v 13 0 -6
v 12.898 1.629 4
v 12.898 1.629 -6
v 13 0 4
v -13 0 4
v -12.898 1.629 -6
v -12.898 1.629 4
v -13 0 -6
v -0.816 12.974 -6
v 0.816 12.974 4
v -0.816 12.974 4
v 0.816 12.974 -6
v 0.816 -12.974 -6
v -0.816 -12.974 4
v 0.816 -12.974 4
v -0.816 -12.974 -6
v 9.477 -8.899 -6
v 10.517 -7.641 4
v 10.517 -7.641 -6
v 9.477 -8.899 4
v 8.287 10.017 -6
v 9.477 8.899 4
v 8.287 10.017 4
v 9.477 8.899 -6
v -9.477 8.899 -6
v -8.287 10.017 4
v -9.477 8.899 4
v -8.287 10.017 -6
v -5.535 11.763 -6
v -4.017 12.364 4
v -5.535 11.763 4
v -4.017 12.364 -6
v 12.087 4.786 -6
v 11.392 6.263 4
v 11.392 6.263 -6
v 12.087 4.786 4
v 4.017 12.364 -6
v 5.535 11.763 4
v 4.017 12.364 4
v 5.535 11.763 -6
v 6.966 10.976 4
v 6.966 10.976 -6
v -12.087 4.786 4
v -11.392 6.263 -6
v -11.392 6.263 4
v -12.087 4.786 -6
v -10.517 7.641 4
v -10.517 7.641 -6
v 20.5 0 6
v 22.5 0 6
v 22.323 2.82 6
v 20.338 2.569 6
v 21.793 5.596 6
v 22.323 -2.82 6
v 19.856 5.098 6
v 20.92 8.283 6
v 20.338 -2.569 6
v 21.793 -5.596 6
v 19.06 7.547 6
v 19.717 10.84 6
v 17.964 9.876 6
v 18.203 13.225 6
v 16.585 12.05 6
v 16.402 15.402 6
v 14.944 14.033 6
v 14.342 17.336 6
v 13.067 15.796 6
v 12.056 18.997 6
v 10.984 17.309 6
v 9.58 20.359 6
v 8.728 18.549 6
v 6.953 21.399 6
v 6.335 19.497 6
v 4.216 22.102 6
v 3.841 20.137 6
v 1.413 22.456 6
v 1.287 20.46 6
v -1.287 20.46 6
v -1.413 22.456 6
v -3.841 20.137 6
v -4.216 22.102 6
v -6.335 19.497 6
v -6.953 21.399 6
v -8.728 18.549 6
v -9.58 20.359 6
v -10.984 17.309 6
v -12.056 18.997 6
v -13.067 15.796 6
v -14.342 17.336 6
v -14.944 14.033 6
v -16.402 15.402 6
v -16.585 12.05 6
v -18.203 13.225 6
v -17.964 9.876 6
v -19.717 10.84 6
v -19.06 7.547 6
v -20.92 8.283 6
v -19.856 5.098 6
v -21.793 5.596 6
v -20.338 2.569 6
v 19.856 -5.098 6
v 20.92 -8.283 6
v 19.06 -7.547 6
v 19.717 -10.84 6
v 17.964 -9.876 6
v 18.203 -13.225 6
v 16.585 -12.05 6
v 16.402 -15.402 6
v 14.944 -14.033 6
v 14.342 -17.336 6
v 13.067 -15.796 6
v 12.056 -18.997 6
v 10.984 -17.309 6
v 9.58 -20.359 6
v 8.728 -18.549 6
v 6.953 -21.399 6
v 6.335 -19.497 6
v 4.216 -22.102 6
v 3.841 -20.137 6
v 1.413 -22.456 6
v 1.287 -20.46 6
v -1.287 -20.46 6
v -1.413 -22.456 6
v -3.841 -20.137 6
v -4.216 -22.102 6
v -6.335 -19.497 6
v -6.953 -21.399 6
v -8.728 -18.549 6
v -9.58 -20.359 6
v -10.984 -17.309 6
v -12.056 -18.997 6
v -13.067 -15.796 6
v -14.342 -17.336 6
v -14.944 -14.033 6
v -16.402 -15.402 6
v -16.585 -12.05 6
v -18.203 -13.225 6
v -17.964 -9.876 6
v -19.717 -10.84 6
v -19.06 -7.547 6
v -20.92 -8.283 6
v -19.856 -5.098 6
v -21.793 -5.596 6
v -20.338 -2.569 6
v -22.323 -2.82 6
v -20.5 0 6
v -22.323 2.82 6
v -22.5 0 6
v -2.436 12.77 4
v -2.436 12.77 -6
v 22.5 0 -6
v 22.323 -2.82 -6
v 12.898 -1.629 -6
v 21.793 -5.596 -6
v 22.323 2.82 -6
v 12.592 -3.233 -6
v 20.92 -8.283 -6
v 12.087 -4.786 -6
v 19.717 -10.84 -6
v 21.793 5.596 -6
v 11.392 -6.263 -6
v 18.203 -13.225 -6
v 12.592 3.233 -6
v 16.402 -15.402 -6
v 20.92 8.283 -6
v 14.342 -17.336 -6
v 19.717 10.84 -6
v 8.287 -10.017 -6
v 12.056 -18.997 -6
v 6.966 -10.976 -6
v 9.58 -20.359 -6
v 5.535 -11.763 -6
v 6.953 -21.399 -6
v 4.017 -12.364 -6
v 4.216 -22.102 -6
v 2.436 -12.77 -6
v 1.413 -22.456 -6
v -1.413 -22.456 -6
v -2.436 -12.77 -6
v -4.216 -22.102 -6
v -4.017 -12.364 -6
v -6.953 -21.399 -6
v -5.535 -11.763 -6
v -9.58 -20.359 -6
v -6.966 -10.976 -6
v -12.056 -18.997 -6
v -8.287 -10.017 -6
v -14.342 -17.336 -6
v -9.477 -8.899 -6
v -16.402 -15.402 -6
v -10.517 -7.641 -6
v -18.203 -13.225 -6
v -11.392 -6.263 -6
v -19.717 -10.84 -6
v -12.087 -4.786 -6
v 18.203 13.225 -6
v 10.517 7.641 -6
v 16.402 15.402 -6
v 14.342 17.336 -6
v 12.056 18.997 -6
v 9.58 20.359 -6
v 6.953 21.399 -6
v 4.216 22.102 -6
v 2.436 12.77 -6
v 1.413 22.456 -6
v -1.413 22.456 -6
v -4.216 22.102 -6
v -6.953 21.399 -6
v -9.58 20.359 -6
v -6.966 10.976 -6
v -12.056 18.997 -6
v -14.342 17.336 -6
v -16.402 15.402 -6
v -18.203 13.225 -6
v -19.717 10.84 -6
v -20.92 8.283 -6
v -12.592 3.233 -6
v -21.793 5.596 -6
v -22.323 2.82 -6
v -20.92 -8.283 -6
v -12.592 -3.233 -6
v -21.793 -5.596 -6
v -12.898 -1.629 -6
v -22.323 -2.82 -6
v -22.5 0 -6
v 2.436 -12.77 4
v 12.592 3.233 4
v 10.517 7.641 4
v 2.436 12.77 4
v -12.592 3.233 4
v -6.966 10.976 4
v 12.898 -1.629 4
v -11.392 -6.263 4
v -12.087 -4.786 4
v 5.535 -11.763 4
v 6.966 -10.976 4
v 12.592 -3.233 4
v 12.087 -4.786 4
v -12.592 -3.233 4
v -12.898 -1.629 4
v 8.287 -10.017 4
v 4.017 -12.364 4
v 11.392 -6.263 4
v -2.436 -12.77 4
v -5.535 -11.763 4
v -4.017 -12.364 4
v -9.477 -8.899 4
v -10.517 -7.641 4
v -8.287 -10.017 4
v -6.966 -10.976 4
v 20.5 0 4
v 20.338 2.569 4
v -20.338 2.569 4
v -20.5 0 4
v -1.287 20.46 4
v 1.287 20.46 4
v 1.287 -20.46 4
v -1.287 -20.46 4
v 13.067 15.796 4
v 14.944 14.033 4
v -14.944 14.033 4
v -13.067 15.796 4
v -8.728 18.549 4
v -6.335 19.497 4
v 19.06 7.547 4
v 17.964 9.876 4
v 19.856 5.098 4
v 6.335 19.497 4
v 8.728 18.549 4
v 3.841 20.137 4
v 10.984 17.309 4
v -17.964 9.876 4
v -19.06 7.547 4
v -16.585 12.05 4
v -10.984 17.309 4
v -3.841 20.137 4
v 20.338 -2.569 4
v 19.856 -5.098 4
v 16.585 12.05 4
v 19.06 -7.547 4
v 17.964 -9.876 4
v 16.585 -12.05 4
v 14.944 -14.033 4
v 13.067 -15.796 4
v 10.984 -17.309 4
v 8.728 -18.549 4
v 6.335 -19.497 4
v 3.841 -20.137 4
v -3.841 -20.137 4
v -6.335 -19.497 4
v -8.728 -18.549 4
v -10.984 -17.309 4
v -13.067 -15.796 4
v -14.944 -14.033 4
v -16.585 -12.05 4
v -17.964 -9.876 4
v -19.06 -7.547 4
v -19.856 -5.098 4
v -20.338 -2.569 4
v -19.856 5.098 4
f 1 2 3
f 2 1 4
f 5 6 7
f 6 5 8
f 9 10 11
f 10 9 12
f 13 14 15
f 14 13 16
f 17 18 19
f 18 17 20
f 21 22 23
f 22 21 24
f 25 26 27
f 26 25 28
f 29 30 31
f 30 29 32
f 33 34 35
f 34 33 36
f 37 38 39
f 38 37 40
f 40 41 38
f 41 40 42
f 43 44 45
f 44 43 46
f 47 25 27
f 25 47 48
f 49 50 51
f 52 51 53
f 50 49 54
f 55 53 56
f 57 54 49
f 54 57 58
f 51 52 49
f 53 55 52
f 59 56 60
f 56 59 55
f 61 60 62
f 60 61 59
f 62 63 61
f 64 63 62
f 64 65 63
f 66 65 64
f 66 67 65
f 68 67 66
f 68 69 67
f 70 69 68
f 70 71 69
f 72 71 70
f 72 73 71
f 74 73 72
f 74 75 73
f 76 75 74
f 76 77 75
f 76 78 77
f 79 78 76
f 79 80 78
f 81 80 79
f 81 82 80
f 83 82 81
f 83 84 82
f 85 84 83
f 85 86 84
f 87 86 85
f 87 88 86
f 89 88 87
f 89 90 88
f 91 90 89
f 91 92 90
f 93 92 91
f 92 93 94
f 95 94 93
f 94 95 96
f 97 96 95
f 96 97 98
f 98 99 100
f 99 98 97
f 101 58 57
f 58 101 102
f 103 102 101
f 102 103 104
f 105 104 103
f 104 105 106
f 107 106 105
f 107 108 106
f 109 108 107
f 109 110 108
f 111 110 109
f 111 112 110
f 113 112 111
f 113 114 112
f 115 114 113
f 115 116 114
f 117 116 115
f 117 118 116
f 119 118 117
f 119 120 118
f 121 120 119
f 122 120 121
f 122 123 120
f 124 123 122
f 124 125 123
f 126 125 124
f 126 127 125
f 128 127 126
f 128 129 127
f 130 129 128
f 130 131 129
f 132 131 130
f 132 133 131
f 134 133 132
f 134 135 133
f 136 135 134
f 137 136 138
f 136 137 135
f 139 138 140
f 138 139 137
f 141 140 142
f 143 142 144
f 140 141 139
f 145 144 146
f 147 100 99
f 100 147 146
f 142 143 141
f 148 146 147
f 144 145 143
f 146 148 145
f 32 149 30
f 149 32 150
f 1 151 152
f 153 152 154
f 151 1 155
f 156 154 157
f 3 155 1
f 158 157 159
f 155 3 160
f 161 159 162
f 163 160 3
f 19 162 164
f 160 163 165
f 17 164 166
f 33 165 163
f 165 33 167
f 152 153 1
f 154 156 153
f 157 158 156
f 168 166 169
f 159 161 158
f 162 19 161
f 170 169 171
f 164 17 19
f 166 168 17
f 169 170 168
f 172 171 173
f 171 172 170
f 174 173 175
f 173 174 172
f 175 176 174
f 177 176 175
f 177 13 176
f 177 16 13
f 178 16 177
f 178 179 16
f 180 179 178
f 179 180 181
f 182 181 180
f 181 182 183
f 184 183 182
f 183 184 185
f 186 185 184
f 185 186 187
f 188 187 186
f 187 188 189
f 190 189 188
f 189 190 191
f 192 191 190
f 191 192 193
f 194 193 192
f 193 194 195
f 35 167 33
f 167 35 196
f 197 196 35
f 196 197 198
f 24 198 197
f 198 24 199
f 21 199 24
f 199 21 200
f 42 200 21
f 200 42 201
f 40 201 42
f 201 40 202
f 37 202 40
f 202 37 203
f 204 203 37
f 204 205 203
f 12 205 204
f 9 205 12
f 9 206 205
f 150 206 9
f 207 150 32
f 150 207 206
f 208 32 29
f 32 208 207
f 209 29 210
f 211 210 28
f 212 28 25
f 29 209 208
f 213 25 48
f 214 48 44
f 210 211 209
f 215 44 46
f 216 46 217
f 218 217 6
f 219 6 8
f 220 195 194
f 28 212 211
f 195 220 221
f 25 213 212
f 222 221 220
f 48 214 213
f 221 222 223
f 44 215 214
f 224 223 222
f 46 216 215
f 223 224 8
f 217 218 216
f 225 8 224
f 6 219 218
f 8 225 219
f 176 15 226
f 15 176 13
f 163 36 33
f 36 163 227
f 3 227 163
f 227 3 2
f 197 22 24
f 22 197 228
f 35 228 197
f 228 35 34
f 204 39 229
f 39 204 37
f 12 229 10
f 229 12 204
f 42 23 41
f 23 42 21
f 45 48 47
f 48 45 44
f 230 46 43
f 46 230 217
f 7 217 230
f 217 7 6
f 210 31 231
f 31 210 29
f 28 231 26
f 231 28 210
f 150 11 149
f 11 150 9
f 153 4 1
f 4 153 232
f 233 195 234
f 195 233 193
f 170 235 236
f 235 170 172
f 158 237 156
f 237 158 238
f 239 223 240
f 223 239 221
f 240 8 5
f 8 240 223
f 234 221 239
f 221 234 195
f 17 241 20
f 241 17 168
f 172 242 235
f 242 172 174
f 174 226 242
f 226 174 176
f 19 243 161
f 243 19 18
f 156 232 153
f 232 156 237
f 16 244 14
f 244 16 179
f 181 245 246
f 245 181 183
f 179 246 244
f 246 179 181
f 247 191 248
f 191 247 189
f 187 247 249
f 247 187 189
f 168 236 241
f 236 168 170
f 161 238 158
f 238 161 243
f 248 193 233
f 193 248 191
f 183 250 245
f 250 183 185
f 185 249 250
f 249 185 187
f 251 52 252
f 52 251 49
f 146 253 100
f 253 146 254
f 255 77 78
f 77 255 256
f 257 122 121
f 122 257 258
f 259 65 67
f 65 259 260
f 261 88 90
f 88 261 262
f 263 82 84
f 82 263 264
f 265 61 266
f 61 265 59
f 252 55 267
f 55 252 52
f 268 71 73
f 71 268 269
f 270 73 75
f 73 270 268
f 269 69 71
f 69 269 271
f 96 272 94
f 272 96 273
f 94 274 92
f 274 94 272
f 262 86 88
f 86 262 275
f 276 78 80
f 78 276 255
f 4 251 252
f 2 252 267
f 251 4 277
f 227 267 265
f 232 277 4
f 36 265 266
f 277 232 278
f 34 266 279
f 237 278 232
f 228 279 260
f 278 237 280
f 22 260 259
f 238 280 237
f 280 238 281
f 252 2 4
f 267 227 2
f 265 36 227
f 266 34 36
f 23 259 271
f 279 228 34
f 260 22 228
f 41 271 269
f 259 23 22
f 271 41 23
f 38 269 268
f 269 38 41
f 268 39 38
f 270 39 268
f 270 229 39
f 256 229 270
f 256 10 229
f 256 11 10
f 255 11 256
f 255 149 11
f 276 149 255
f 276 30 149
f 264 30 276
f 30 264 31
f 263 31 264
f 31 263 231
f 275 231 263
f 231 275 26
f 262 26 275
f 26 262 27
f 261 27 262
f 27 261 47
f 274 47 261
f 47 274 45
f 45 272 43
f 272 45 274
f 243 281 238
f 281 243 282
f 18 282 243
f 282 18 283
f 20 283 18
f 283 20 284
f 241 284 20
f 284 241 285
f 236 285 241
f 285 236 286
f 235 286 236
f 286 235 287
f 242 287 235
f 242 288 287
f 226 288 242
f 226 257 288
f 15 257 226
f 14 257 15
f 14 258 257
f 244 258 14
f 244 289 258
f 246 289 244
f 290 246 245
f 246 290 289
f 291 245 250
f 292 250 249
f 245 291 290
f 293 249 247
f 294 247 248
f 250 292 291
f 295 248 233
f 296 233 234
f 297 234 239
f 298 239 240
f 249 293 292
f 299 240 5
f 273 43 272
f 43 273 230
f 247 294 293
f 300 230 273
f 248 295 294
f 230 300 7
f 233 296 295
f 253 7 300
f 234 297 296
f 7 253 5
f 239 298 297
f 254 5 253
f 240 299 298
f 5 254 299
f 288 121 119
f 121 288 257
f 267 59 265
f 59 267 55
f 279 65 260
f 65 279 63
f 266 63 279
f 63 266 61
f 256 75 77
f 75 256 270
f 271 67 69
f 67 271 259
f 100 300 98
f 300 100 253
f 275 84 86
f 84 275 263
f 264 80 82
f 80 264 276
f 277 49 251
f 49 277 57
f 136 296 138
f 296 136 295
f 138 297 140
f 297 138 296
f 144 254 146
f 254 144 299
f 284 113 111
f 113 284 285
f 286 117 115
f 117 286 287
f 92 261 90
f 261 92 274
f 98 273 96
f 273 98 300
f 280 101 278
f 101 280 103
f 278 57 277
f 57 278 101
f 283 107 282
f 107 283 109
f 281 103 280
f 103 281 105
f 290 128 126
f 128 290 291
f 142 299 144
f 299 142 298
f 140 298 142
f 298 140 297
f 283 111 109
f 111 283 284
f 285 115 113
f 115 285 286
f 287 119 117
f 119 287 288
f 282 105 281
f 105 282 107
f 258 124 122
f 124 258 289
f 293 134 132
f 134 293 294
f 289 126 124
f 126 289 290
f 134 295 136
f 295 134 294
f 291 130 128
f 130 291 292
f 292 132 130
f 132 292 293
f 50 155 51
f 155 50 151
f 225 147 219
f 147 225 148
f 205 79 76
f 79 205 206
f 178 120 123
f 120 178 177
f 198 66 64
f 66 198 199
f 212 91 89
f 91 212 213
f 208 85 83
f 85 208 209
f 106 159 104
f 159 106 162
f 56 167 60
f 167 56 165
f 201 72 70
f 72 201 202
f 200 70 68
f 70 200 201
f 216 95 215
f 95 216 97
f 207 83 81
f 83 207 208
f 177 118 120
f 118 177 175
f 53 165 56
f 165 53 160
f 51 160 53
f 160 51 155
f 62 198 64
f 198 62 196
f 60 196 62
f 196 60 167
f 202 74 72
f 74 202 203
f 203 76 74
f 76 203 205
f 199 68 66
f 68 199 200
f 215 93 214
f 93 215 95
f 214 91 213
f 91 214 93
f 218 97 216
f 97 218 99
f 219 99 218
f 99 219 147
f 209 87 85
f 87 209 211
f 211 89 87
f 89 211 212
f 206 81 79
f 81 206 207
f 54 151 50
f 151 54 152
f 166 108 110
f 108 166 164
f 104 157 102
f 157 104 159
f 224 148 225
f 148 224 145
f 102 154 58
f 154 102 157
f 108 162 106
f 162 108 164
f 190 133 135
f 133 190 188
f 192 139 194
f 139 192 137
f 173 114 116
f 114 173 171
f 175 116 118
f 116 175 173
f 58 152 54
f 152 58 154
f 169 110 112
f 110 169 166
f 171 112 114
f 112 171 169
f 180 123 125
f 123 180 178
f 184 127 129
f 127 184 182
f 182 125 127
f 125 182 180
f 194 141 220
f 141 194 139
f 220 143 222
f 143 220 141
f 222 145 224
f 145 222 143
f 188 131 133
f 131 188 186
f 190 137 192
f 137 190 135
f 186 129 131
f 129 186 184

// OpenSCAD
$fn = 50;


difference() {
	union() {
		translate(v = [0, 0, -6.0000000000]) {
			cylinder(h = 12, r = 22.5000000000);
		}
	}
	union() {
		#translate(v = [0, 0, -6.0000000000]) {
			cylinder(h = 12, r = 13.0000000000);
		}
		translate(v = [0, 0, 4.0000000000]) {
			cylinder(h = 2, r = 20.5000000000);
		}
	}
}
